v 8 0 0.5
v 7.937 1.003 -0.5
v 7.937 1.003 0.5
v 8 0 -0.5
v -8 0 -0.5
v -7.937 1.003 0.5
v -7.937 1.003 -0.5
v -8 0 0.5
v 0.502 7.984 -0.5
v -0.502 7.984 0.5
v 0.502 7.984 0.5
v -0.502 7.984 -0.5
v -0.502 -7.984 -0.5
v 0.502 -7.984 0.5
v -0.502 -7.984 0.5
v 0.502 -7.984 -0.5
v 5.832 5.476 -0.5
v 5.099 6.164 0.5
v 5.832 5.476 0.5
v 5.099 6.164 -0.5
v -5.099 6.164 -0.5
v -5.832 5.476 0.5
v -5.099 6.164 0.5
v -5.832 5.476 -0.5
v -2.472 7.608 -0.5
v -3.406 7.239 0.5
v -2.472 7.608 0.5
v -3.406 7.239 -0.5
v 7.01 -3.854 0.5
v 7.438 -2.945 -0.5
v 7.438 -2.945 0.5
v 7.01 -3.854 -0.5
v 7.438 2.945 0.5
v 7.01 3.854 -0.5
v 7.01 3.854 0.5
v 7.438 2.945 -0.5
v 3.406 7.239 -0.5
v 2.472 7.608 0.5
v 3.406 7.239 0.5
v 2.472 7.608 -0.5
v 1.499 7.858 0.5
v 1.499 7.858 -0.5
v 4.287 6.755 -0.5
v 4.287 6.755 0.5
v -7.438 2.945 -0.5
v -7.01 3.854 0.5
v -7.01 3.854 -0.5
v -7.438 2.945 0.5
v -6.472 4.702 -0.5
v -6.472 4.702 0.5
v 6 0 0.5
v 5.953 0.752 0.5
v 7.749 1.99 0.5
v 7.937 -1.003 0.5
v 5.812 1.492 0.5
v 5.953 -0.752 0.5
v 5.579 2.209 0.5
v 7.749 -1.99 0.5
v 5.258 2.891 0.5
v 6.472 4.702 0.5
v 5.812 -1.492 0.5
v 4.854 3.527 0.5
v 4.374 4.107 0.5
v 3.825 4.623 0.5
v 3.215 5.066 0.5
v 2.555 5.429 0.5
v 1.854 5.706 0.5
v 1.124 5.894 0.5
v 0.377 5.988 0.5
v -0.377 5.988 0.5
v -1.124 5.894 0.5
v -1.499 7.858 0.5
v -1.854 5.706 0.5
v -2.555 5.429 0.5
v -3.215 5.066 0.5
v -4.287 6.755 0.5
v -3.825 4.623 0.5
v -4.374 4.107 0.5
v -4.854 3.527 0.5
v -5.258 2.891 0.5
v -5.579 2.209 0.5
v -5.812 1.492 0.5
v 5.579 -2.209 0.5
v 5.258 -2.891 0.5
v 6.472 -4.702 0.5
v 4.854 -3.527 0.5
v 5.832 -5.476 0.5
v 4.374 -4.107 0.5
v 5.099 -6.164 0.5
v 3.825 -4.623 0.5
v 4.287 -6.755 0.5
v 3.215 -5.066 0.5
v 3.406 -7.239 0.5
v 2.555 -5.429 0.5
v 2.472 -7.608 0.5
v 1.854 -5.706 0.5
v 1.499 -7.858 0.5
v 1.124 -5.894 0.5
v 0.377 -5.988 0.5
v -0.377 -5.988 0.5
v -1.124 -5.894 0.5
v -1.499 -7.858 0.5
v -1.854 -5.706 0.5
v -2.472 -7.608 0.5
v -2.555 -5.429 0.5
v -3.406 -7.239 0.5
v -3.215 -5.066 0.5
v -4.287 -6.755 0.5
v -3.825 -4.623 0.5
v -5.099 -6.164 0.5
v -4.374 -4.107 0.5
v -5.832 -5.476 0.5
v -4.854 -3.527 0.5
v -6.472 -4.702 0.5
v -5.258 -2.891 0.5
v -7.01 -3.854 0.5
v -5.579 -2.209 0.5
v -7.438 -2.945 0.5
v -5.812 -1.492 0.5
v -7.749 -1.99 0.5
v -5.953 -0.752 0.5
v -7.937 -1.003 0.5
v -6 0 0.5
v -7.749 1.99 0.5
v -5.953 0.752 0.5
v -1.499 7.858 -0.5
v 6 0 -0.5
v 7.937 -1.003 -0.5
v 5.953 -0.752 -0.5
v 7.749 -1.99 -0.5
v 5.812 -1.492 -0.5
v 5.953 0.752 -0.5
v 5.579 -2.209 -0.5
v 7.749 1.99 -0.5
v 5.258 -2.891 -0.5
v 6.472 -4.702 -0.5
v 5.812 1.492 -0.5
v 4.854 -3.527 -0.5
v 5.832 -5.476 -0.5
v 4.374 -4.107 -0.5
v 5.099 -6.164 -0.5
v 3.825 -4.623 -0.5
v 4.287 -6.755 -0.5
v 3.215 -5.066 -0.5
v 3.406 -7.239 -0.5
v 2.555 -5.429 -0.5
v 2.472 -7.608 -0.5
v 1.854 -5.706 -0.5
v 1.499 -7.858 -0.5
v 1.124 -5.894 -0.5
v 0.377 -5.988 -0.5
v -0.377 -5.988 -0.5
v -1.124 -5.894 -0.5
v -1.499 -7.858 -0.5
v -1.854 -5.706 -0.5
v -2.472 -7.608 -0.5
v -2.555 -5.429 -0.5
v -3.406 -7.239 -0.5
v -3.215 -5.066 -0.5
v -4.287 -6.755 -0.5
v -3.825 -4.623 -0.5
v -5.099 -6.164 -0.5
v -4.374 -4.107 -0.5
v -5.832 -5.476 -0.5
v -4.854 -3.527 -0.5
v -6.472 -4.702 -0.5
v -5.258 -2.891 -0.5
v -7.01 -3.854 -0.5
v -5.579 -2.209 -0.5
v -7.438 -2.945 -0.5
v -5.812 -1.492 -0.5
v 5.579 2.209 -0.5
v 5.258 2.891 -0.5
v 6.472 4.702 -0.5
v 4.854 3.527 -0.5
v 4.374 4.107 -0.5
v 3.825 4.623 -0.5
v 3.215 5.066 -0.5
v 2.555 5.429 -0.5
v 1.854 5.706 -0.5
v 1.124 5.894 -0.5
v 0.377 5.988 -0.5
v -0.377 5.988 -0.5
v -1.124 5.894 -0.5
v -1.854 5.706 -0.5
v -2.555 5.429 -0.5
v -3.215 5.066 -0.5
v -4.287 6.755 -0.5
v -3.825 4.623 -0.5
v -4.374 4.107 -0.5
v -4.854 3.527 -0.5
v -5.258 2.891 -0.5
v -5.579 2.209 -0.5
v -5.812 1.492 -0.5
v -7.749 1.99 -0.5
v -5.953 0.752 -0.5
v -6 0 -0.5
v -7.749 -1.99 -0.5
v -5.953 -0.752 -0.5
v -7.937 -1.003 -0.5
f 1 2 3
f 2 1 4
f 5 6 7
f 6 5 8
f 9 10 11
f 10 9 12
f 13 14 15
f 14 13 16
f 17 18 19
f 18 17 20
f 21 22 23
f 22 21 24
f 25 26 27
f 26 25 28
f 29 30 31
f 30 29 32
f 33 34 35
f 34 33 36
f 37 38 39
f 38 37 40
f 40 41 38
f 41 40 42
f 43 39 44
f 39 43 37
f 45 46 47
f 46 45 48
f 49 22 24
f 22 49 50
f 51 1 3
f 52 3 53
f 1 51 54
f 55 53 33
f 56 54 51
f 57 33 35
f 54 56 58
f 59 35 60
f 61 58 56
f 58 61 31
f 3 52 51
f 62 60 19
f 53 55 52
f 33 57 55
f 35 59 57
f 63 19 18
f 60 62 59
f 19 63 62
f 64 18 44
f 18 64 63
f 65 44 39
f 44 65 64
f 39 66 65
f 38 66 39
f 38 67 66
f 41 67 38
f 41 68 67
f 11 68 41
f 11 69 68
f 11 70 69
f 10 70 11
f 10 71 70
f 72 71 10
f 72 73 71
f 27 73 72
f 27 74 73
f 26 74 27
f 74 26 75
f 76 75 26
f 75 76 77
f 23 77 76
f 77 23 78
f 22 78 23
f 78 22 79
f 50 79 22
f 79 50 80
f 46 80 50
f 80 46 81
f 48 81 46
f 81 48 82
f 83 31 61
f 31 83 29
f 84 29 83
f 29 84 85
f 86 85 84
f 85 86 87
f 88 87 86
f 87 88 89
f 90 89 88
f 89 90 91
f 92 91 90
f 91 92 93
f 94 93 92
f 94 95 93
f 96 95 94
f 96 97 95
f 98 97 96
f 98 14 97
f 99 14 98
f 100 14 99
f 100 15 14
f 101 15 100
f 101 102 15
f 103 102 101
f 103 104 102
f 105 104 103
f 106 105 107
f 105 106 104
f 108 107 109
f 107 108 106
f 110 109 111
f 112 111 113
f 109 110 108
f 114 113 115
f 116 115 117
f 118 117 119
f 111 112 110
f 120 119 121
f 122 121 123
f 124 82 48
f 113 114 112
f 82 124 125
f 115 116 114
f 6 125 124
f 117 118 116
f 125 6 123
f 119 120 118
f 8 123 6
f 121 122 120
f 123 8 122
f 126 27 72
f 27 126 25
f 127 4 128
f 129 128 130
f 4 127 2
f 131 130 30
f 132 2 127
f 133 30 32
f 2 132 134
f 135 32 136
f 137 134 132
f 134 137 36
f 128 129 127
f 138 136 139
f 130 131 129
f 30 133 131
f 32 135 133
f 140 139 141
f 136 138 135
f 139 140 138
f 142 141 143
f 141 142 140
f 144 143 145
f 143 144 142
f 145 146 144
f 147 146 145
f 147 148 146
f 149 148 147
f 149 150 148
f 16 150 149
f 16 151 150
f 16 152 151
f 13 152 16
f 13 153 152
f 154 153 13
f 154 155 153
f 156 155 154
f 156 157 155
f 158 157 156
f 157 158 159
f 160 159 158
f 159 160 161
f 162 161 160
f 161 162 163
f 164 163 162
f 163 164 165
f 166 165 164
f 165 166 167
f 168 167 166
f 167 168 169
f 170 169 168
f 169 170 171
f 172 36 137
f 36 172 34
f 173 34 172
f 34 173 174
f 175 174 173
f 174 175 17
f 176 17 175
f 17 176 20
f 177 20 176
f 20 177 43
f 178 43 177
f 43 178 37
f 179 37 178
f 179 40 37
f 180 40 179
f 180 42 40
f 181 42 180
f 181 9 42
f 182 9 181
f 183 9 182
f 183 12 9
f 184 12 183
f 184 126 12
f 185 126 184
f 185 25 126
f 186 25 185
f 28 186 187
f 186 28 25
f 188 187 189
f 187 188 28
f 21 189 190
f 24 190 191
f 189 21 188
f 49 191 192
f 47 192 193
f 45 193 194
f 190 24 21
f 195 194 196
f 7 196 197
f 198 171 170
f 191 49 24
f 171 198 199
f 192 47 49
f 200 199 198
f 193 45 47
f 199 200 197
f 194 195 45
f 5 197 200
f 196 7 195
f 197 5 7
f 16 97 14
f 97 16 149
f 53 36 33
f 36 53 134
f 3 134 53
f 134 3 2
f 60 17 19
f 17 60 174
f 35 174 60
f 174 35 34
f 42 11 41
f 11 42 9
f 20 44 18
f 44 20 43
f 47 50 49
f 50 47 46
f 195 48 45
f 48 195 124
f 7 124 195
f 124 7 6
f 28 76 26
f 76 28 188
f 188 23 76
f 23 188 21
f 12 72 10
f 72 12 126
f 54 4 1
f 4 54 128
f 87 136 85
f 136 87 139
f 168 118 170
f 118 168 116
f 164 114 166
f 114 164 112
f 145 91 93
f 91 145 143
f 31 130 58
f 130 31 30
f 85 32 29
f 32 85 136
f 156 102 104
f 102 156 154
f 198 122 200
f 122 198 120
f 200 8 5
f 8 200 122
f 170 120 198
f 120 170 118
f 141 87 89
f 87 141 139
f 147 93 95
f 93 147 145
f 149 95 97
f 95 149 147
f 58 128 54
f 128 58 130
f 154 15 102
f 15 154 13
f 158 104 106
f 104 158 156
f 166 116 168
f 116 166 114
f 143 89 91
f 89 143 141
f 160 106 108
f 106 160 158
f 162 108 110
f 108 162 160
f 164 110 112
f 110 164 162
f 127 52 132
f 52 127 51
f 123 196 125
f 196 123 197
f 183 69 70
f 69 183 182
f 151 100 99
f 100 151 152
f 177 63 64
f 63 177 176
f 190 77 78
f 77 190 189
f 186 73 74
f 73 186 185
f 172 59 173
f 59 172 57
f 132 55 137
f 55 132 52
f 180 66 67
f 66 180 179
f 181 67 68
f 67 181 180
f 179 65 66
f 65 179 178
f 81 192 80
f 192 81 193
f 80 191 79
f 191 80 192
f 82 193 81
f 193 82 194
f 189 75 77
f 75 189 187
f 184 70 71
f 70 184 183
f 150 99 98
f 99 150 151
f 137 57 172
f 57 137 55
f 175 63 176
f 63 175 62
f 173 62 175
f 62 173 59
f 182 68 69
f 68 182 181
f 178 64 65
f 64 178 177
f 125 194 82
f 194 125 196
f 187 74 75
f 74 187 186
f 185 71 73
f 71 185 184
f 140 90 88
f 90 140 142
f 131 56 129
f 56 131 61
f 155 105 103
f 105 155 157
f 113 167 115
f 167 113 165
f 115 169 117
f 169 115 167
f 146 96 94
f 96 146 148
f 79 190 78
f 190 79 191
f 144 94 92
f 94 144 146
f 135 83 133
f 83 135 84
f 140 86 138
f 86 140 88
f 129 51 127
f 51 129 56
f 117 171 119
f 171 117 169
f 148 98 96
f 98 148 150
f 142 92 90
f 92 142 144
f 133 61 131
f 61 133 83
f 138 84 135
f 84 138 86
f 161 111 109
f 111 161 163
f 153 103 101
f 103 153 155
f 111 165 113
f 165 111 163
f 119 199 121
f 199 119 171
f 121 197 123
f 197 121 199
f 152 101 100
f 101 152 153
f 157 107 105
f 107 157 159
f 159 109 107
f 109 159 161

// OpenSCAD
$fn = 50;


difference() {
	union() {
		translate(v = [0, 0, -0.5000000000]) {
			cylinder(h = 1, r = 8.0000000000);
		}
	}
	union() {
		translate(v = [0, 0, -100.0000000000]) {
			cylinder(h = 200, r = 6);
		}
	}
}
